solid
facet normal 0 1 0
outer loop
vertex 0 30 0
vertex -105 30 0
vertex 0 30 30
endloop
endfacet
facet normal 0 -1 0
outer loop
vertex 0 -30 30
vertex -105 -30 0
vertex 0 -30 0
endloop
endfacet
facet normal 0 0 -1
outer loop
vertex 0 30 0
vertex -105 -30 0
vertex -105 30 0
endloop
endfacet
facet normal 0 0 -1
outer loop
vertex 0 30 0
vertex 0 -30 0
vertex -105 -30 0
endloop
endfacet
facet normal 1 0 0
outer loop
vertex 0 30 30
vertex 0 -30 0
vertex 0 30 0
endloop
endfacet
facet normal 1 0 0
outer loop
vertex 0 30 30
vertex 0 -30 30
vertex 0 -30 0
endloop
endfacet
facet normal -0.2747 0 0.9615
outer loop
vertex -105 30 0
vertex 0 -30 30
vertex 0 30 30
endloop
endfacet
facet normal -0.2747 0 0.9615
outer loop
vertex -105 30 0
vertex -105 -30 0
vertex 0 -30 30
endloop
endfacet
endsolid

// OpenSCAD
    cf=3;
    b = 35*cf;
    h = 10*cf;
    w = 20*cf;
    

    //Start with an extruded triangle
    rotate(a=[90,-90,0])
    linear_extrude(height = w, center = true, convexity = 10, twist = 0)
    polygon(points=[[0,0],[h,0],[0,b]], paths=[[0,1,2]]);
